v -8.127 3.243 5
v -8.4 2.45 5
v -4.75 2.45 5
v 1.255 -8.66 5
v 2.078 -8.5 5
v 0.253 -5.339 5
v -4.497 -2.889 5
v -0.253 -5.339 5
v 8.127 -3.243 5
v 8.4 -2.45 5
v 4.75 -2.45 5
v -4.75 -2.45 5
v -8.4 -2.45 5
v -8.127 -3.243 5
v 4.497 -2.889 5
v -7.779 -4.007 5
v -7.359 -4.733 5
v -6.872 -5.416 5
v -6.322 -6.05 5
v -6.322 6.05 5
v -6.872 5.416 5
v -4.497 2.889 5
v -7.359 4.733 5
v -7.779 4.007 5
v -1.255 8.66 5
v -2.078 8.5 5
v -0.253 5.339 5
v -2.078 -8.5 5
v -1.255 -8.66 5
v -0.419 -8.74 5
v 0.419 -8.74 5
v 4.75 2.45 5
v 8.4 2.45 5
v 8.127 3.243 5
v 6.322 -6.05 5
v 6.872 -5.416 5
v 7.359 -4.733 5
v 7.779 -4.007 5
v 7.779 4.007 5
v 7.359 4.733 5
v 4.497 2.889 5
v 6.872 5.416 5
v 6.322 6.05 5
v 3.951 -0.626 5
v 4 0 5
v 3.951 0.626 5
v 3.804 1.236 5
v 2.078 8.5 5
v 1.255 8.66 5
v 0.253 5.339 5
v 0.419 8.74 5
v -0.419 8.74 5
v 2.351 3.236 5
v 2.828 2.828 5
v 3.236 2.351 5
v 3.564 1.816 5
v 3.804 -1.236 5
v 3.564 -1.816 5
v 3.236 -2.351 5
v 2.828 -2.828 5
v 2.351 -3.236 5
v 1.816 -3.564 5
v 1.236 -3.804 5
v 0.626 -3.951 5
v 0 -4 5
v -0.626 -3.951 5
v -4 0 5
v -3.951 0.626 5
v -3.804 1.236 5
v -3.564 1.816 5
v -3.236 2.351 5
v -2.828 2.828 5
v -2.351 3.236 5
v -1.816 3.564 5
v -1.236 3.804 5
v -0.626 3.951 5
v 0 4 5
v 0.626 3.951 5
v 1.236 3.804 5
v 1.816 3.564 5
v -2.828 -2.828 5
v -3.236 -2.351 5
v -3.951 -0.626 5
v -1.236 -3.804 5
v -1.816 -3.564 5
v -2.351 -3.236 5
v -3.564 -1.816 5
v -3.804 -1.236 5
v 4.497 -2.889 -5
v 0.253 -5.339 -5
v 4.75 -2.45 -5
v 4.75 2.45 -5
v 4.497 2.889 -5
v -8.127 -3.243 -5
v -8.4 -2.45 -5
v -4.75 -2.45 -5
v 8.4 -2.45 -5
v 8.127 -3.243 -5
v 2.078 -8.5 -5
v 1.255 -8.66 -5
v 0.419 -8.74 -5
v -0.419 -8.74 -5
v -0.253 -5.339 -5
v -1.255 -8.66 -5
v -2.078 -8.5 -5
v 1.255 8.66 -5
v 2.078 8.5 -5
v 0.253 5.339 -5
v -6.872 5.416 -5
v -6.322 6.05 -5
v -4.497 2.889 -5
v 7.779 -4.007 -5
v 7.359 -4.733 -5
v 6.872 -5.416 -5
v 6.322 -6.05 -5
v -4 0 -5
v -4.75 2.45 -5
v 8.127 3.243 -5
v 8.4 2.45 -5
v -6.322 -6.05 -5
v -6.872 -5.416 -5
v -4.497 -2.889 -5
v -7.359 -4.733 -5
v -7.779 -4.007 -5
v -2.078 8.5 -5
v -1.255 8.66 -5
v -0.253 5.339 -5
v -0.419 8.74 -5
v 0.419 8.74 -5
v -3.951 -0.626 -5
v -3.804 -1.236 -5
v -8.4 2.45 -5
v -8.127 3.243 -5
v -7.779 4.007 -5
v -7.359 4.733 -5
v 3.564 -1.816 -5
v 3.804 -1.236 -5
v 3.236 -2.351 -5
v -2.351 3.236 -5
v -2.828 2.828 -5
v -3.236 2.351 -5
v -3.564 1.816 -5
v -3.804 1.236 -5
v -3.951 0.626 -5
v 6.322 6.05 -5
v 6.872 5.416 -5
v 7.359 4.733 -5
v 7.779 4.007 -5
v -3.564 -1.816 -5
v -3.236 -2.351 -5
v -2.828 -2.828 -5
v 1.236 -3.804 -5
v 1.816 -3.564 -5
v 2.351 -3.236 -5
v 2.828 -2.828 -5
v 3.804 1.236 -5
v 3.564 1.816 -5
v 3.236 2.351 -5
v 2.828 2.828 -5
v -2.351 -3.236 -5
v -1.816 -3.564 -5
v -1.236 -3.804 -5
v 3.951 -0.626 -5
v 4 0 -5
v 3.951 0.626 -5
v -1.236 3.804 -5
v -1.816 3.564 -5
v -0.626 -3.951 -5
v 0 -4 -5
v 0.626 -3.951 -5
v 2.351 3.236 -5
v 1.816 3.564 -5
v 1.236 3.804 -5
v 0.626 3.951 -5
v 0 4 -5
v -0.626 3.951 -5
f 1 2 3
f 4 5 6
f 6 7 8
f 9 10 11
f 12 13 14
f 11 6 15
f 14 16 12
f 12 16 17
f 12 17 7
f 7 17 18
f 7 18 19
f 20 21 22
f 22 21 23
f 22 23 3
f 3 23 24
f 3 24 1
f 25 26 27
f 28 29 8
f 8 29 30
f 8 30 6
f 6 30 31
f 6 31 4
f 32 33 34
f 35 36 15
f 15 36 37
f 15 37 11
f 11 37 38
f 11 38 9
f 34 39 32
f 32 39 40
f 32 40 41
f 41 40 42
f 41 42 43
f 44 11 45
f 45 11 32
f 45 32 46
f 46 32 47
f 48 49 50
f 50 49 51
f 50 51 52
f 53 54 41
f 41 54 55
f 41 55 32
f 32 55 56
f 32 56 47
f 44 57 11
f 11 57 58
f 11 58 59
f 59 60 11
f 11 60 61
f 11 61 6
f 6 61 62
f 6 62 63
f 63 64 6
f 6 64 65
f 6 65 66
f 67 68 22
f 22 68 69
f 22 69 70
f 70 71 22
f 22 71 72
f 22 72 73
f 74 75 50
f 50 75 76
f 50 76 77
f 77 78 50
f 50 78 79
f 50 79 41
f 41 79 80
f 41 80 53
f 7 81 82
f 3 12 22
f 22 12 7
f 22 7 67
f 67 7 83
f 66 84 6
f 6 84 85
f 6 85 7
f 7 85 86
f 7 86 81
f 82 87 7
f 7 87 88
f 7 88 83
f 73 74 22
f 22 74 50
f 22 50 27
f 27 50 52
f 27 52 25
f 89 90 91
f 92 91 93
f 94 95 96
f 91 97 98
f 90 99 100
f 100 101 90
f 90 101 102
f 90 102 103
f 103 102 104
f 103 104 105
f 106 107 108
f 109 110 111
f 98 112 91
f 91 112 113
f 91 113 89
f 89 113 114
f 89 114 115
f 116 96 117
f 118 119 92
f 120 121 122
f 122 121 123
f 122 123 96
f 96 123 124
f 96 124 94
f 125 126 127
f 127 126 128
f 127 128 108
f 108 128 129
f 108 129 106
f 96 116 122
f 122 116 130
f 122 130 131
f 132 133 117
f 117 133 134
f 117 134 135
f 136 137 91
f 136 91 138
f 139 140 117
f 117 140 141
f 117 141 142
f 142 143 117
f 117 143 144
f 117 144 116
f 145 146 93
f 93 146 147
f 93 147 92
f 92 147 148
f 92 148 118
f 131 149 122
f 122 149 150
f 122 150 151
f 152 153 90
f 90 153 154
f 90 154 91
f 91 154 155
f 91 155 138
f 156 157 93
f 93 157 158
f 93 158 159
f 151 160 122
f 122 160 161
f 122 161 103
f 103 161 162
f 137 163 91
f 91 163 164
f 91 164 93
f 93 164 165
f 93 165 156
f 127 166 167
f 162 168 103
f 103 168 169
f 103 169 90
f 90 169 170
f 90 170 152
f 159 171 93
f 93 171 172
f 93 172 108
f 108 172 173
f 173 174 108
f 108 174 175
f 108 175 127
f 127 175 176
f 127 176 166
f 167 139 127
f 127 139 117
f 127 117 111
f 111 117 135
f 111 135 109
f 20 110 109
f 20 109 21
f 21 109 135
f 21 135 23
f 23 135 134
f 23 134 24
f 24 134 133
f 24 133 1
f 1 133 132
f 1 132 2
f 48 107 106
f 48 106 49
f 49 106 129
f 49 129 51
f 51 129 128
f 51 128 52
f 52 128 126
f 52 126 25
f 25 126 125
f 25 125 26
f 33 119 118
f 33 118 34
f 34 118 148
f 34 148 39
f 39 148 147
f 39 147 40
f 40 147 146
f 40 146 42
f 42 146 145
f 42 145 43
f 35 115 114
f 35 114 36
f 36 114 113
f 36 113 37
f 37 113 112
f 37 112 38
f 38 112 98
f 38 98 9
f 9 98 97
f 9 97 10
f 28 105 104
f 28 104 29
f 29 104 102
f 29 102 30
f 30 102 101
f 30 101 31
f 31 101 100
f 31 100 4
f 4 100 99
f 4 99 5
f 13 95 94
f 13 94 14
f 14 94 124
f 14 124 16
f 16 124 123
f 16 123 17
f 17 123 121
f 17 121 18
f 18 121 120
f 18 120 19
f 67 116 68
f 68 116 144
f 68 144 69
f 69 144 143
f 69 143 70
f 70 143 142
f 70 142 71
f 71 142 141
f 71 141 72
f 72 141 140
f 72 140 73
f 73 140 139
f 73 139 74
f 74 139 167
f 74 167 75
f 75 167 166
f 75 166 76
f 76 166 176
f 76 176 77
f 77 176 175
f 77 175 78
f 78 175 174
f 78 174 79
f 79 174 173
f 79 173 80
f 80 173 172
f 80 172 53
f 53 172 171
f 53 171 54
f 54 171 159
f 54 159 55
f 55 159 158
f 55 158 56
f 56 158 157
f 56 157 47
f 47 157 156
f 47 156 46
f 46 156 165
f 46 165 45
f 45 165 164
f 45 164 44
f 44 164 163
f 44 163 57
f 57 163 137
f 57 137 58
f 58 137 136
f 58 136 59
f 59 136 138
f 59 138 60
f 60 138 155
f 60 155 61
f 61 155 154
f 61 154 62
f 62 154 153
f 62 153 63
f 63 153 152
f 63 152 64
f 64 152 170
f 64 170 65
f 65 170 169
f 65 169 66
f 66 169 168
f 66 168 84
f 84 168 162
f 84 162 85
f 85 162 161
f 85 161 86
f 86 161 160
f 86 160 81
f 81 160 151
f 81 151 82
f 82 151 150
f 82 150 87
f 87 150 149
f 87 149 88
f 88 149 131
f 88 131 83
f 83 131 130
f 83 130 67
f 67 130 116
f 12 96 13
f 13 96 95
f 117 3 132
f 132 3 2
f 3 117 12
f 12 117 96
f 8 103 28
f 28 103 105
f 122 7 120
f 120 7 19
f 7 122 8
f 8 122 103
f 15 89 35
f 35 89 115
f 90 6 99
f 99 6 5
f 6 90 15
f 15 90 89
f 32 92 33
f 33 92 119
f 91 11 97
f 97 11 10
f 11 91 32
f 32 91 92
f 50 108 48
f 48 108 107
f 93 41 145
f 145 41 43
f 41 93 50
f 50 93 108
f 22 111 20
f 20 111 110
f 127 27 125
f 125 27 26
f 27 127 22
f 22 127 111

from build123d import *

# Parameters (mm, degrees)
SKETCH1_R           = 8.75
SKETCH1_R_2         = 4
BOSS_EXTRUDE1_DEPTH = 5
SKETCH2_W           = 4.9
SKETCH2_H           = 10
CUT_EXTRUDE3_DEPTH  = 4
CIRPATTERN1_COUNT   = 6


with BuildPart() as part:
    # Sketch1 → Boss-Extrude1 (new, symmetric)
    with BuildSketch(Plane.XY):
        Circle(SKETCH1_R)
        Circle(SKETCH1_R_2, mode=Mode.SUBTRACT)
    extrude(amount=BOSS_EXTRUDE1_DEPTH, both=True)

    # Sketch2 → Cut-Extrude3 (cut)
    with BuildSketch(Plane(origin=(-8.75, -17.193061184, 0), x_dir=(0, -1, 0), z_dir=(1, 0, 0))):
        with Locations((-17.193061184, 0)):
            Rectangle(SKETCH2_W, SKETCH2_H)
    cut_extrude3 = extrude(amount=CUT_EXTRUDE3_DEPTH, mode=Mode.SUBTRACT)

    # CirPattern1: Cut-Extrude3 ×6 about axis
    cirpattern1_axis = Axis((0, 0, 5), (0, 0, 1))
    for i in range(1, CIRPATTERN1_COUNT):
        add(cut_extrude3.rotate(cirpattern1_axis, i * 360 / CIRPATTERN1_COUNT), mode=Mode.SUBTRACT)


solid = part.part
